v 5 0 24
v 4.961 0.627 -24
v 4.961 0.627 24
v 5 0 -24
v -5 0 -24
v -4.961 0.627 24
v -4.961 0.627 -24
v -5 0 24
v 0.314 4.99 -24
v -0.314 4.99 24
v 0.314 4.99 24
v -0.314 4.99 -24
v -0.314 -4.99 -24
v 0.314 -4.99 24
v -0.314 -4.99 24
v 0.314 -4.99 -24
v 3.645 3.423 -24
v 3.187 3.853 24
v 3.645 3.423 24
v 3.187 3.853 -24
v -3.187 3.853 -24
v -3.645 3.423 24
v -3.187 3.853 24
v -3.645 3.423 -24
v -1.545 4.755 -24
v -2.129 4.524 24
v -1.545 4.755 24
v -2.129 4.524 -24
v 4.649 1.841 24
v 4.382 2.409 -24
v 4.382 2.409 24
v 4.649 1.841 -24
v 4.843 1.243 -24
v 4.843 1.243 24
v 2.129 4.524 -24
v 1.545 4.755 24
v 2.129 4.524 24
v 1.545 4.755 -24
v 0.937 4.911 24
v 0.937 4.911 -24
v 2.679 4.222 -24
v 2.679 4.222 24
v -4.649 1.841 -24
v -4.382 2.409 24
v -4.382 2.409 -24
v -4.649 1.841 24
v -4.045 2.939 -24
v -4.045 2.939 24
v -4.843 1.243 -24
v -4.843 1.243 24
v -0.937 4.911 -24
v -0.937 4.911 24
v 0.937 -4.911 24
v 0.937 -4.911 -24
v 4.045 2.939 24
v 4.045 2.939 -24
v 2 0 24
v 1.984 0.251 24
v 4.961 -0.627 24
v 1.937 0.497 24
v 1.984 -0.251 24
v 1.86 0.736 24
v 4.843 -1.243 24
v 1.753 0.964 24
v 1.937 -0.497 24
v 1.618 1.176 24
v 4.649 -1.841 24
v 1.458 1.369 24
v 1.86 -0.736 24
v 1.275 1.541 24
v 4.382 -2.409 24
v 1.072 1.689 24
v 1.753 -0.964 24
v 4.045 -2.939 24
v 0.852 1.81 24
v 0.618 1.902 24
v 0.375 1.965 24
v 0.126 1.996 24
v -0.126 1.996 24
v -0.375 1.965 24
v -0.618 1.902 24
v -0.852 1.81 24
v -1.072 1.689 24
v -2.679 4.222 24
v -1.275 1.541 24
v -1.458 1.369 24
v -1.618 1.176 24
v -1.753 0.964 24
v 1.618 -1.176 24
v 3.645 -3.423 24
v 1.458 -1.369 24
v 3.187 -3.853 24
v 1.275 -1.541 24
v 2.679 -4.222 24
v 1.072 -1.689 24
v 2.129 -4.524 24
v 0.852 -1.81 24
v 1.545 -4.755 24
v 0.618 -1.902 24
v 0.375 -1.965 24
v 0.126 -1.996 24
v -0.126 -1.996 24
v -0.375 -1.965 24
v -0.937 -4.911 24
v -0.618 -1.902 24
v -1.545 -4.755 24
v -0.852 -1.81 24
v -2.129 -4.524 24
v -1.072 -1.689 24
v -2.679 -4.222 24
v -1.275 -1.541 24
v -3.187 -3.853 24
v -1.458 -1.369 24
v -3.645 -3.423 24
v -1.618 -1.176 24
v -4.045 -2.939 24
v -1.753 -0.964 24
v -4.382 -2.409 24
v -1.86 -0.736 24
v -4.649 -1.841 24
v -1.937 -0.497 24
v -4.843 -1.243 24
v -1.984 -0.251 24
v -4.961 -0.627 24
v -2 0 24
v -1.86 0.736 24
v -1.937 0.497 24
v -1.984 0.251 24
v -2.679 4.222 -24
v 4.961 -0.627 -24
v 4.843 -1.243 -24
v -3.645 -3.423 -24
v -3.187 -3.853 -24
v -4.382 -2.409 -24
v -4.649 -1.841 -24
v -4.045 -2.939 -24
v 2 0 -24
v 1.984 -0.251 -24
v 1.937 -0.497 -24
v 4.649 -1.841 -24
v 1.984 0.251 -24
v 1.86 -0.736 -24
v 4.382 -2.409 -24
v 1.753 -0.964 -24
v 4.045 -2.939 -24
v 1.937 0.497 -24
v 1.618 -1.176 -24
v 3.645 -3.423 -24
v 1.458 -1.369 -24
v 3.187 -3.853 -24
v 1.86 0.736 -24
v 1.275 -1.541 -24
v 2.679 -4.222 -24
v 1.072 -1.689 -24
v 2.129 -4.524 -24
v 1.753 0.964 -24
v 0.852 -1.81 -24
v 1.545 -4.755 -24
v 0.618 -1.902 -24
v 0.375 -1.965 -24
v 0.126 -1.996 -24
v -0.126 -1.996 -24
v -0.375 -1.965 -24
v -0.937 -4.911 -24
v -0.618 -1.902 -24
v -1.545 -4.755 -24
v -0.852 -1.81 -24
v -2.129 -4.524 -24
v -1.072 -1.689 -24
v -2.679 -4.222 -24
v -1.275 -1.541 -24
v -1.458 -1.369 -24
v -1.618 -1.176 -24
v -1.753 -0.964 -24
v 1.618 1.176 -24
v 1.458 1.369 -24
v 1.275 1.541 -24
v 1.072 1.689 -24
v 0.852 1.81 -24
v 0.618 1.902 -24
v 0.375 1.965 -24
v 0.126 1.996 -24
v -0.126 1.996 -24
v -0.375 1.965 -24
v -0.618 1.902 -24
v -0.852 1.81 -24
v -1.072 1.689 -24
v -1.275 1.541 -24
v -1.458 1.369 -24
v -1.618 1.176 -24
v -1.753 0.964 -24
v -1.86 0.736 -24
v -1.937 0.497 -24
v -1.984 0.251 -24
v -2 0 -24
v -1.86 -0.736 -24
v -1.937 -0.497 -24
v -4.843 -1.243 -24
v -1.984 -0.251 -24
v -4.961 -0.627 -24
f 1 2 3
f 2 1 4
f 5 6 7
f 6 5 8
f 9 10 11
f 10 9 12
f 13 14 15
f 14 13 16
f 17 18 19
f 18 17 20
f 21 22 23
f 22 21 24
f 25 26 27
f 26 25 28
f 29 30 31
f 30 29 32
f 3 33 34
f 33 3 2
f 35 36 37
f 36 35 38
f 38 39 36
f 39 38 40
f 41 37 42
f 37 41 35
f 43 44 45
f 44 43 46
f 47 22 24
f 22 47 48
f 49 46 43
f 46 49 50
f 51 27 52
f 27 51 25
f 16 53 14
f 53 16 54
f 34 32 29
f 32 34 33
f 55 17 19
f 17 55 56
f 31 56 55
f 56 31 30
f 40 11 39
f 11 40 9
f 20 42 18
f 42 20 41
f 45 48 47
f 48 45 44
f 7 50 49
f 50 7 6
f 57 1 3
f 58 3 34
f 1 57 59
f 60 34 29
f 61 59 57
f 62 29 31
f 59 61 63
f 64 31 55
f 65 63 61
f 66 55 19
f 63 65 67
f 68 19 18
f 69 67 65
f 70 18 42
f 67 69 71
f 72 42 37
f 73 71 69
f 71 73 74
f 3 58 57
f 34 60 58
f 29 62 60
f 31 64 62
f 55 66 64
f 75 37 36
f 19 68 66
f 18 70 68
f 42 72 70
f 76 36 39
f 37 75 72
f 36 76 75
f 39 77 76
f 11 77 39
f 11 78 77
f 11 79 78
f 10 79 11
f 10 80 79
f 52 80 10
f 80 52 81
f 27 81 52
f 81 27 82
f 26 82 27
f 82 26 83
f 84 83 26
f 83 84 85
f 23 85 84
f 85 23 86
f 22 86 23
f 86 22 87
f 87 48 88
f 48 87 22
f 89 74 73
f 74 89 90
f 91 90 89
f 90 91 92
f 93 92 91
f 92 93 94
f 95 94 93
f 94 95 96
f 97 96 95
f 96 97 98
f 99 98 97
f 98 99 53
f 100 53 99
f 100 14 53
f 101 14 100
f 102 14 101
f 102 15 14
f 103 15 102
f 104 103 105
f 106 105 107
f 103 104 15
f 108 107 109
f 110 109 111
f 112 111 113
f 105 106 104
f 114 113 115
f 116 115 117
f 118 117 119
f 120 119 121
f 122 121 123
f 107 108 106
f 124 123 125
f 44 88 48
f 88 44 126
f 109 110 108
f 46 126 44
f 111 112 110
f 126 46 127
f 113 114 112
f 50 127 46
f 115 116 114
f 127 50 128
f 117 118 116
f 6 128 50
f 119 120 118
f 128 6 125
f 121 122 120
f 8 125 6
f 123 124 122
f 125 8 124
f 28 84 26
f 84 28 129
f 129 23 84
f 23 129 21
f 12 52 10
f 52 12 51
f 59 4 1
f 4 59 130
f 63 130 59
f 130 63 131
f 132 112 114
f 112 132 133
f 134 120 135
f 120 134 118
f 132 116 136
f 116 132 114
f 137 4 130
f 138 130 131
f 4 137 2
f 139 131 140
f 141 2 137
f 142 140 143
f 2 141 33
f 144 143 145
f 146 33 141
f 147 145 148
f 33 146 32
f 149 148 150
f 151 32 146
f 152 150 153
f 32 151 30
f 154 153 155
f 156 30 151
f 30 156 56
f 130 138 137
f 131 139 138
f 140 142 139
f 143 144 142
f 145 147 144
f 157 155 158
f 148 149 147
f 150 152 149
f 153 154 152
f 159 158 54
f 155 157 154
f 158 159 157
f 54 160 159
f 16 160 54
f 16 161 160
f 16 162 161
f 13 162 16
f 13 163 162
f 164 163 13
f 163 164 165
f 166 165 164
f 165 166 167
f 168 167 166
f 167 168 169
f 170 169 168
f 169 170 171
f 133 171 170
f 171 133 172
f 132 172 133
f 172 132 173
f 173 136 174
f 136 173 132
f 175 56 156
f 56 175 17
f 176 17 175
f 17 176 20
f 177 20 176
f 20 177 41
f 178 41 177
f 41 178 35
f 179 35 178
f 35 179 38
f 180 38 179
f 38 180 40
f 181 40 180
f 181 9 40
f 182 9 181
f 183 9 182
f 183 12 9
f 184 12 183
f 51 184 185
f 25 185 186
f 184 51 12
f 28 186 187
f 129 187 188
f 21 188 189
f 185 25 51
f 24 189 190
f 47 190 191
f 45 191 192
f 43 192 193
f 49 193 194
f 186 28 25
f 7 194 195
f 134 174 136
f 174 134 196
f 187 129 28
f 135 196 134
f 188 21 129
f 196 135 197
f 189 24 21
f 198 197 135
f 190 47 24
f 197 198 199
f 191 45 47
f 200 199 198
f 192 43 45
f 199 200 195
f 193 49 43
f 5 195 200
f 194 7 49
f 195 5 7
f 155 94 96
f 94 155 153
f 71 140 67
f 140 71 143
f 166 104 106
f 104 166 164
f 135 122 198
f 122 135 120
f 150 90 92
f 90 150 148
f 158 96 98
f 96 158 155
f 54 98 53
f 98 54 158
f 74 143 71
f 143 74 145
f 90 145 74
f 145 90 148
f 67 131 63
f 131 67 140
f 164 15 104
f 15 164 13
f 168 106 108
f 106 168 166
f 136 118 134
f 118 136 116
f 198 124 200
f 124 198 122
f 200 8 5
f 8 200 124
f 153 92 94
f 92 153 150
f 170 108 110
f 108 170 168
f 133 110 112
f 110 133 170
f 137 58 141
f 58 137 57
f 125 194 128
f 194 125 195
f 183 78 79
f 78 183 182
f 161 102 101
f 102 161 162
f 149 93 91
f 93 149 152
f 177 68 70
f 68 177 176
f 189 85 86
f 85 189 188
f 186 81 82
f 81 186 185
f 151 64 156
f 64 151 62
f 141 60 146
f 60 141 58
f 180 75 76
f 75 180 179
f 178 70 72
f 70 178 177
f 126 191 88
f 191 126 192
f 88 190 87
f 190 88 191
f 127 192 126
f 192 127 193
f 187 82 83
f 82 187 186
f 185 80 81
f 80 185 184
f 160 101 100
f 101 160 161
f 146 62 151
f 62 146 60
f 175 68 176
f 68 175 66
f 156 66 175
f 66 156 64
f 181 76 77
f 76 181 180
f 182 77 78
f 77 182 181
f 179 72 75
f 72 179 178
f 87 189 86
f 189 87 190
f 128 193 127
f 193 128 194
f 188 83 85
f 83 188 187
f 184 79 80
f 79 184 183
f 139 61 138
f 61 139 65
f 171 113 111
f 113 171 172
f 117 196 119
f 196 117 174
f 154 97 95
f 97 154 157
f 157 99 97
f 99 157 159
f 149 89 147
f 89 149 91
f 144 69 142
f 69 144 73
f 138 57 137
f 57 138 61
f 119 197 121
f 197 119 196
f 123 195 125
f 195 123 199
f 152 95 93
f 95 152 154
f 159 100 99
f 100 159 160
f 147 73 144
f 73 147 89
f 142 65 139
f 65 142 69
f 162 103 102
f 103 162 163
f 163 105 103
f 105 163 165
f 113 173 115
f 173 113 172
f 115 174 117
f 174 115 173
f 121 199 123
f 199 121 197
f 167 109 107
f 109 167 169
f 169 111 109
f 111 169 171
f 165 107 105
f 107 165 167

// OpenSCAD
$fn = 50;


difference() {
	union() {
		translate(v = [0, 0, -24.0000000000]) {
			cylinder(h = 48, r = 5.0000000000);
		}
	}
	union() {
		translate(v = [0, 0, -100.0000000000]) {
			cylinder(h = 200, r = 2);
		}
	}
}
